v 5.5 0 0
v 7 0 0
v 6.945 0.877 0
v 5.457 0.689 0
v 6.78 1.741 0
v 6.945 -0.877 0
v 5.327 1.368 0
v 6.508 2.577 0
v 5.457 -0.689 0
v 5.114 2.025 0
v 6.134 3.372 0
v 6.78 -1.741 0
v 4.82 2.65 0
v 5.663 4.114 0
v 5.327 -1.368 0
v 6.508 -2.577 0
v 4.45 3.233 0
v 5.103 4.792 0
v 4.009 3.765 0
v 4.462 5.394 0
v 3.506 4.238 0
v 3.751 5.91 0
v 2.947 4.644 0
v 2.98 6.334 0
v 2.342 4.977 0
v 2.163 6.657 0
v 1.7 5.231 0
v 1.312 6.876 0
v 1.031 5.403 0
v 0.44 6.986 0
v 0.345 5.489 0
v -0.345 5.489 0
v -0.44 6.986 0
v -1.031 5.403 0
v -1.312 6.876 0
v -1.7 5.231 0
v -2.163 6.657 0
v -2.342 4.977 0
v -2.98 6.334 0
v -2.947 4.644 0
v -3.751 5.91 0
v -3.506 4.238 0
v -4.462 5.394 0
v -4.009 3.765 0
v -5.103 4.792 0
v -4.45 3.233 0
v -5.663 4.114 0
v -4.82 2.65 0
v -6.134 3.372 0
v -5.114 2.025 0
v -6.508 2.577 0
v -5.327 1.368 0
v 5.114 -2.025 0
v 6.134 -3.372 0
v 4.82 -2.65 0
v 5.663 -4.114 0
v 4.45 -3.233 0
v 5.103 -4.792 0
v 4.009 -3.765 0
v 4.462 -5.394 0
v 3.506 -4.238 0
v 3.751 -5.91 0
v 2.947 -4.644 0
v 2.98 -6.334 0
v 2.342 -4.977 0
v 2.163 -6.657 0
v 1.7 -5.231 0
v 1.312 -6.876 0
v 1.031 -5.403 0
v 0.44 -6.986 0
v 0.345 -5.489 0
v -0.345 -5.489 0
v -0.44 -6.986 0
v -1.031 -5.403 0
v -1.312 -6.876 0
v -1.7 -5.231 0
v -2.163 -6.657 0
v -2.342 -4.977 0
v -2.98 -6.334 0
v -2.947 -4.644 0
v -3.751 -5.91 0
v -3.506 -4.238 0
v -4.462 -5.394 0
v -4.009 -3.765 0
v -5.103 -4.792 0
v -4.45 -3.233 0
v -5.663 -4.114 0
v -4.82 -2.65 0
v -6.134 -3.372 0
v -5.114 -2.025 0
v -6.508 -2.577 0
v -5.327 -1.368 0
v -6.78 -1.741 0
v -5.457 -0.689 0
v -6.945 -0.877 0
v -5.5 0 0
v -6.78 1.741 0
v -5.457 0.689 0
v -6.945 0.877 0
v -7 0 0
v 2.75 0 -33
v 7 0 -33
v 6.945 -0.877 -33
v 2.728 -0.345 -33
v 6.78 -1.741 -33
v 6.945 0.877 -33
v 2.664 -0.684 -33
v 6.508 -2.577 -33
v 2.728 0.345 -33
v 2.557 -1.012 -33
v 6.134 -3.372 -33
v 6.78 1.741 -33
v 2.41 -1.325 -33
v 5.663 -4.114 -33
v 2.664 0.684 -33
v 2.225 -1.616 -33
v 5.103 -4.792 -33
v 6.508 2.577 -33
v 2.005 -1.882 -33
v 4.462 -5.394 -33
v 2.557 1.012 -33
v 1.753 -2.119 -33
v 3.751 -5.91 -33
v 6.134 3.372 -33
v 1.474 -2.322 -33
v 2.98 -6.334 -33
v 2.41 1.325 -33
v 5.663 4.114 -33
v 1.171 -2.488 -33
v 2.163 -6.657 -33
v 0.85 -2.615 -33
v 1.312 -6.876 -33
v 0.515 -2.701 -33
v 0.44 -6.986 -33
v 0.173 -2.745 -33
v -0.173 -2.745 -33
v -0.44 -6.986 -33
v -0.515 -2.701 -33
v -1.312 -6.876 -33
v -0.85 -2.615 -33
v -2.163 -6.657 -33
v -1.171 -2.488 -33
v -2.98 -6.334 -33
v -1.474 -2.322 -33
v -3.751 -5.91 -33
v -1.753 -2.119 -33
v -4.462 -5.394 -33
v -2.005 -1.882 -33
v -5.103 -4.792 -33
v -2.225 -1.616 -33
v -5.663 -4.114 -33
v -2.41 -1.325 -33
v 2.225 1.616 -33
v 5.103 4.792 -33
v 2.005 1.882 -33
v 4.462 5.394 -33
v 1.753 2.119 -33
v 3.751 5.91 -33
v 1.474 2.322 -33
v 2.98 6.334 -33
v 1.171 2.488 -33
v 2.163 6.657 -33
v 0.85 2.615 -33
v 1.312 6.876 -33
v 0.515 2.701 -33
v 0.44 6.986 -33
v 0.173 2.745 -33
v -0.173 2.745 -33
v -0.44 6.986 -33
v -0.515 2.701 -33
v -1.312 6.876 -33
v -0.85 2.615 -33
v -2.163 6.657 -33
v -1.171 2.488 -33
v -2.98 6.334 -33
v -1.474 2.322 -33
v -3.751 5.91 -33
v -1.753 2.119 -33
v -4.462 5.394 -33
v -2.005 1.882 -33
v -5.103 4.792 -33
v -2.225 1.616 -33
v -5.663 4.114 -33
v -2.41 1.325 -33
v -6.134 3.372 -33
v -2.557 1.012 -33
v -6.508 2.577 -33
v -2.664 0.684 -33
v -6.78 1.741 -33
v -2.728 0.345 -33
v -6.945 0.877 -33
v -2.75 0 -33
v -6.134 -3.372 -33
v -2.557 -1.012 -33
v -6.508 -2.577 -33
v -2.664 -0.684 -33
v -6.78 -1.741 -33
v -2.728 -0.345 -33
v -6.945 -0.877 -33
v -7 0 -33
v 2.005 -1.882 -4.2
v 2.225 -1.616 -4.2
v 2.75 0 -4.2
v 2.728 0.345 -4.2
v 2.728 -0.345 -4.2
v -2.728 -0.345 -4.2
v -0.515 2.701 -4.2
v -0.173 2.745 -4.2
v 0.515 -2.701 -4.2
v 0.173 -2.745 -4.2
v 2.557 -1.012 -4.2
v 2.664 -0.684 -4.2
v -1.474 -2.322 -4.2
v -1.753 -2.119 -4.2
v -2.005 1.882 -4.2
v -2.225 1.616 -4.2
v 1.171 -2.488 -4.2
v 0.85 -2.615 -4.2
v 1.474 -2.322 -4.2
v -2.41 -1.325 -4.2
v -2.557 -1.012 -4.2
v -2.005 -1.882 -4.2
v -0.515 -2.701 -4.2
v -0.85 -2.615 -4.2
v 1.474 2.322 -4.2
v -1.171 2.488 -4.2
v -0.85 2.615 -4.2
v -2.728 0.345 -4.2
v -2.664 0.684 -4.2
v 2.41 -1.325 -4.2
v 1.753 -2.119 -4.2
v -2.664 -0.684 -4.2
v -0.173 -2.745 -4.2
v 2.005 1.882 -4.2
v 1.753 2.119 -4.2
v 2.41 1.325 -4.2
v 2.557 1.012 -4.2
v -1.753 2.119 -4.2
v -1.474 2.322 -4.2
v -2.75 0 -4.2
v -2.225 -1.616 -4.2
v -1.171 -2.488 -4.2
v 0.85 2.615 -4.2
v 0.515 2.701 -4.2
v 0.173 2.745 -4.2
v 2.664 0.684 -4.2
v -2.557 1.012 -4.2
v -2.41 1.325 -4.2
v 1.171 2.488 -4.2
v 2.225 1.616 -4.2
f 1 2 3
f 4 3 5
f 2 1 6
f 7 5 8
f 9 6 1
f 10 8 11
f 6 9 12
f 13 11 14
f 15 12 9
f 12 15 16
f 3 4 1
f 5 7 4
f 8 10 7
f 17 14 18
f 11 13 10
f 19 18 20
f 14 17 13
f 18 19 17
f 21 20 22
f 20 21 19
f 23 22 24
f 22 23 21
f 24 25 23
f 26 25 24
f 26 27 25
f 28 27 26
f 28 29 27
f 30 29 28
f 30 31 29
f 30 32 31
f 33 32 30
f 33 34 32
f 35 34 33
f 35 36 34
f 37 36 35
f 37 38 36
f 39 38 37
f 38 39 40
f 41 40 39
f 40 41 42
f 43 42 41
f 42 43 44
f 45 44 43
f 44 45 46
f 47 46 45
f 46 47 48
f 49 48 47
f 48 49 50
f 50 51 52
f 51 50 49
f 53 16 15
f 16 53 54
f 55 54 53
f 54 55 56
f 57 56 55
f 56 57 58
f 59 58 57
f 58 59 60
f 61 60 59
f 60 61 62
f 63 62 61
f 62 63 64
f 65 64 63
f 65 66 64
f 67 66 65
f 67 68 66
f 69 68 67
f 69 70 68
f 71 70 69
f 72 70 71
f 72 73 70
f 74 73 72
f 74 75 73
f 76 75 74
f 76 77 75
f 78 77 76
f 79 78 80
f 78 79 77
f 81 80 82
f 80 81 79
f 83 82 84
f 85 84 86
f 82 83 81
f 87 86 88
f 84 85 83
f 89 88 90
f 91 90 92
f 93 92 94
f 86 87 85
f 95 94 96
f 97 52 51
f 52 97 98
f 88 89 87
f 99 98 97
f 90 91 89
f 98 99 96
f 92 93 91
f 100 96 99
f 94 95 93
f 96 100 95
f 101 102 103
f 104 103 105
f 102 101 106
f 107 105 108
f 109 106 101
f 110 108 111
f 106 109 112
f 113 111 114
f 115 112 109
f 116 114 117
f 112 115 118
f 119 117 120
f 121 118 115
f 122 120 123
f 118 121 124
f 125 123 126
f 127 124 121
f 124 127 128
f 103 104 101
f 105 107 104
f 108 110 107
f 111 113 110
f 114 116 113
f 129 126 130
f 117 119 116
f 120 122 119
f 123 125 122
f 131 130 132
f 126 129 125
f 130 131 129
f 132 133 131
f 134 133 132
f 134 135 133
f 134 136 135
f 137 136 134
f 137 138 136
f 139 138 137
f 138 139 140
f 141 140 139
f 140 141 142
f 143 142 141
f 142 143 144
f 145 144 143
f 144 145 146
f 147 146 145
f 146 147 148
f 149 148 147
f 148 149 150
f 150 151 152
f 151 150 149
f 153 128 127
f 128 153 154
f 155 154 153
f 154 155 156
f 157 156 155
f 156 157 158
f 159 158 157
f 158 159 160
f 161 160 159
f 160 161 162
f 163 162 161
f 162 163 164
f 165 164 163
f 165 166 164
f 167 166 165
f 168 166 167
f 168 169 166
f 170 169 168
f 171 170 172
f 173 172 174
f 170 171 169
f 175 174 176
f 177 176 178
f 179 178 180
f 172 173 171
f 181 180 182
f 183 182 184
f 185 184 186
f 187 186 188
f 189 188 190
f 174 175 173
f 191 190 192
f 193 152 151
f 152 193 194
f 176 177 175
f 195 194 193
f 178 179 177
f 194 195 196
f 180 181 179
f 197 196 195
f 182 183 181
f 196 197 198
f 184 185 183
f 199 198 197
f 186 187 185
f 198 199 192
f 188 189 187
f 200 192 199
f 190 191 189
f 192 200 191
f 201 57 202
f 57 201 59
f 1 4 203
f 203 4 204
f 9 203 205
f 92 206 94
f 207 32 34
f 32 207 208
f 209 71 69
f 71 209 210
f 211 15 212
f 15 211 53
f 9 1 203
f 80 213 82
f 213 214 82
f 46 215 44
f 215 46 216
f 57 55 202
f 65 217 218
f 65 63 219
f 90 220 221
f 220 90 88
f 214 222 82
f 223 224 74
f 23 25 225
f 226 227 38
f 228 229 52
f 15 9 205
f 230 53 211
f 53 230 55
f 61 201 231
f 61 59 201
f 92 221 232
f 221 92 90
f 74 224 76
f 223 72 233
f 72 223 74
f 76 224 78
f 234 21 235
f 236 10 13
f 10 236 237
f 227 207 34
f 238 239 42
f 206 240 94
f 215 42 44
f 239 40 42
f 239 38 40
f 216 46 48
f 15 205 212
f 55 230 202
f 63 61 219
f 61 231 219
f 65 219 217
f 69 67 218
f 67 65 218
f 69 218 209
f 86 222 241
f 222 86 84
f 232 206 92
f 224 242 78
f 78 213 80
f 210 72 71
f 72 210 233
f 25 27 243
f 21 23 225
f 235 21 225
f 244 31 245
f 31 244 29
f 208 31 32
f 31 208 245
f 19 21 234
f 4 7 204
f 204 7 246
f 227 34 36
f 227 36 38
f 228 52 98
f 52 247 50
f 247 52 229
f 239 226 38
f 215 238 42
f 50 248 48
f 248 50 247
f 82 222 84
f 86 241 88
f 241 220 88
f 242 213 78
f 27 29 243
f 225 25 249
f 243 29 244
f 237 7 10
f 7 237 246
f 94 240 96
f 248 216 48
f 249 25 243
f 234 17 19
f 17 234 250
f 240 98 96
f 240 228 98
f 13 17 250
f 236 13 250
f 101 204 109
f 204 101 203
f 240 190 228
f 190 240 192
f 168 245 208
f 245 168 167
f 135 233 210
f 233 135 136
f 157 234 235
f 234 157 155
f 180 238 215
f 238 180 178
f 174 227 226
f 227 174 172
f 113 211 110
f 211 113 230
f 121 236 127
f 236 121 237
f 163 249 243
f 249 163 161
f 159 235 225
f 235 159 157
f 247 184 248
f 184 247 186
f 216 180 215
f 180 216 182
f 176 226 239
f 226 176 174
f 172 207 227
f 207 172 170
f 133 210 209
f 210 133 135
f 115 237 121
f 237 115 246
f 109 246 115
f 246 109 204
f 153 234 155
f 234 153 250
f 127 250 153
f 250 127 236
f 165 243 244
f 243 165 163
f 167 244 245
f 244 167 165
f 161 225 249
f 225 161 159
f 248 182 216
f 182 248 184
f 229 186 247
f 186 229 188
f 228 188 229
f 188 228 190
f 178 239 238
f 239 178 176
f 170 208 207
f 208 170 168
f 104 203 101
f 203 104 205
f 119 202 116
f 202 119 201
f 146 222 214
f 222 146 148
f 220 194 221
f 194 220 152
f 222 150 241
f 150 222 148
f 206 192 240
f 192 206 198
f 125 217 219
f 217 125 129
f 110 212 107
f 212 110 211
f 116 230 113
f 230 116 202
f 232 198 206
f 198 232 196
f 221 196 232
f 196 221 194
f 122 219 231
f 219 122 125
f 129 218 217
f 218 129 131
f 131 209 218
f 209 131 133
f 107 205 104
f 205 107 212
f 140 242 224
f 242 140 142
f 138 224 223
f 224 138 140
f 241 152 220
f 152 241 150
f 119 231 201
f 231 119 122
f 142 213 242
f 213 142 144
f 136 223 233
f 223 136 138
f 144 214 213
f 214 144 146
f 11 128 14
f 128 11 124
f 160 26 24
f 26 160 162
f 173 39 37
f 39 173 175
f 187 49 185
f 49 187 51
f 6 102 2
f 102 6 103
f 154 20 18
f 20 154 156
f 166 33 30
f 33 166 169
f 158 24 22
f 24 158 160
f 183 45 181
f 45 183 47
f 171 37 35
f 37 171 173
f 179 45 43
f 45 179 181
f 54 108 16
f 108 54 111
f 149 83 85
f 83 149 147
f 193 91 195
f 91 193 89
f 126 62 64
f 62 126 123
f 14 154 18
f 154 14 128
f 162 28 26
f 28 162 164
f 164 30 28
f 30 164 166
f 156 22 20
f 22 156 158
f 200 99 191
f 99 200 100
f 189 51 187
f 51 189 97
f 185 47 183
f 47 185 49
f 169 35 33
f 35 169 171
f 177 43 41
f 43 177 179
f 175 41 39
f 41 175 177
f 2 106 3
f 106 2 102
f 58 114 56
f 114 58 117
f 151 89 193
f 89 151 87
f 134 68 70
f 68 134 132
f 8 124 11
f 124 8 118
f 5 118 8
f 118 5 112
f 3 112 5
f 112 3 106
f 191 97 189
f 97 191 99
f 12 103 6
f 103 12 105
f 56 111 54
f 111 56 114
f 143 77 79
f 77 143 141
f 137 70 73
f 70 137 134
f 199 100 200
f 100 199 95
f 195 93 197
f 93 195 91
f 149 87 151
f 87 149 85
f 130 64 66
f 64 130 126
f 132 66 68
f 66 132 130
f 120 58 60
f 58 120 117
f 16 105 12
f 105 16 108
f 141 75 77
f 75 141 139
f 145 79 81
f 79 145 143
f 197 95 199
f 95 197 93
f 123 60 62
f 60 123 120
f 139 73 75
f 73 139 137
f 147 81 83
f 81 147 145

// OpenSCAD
$fn = 50;


difference() {
	union() {
		translate(v = [0, 0, -33.0000000000]) {
			cylinder(h = 33, r = 7.0000000000);
		}
		cylinder(h = 0, r = 13.0000000000);
	}
	union() {
		translate(v = [0, 0, 0]) {
			rotate(a = [0, 0, 0]) {
				difference() {
					union() {
						#translate(v = [0, 0, -33.0000000000]) {
							cylinder(h = 33, r = 2.2500000000);
						}
						#translate(v = [0, 0, -4.2000000000]) {
							cylinder(h = 4.2000000000, r = 7.0000000000, r1 = 2.7500000000, r2 = 5.5000000000);
						}
						#translate(v = [0, 0, -33.0000000000]) {
							cylinder(h = 33, r = 2.7500000000);
						}
						#translate(v = [0, 0, -33.0000000000]) {
							cylinder(h = 33, r = 2.2500000000);
						}
					}
					union();
				}
			}
		}
	}
}
